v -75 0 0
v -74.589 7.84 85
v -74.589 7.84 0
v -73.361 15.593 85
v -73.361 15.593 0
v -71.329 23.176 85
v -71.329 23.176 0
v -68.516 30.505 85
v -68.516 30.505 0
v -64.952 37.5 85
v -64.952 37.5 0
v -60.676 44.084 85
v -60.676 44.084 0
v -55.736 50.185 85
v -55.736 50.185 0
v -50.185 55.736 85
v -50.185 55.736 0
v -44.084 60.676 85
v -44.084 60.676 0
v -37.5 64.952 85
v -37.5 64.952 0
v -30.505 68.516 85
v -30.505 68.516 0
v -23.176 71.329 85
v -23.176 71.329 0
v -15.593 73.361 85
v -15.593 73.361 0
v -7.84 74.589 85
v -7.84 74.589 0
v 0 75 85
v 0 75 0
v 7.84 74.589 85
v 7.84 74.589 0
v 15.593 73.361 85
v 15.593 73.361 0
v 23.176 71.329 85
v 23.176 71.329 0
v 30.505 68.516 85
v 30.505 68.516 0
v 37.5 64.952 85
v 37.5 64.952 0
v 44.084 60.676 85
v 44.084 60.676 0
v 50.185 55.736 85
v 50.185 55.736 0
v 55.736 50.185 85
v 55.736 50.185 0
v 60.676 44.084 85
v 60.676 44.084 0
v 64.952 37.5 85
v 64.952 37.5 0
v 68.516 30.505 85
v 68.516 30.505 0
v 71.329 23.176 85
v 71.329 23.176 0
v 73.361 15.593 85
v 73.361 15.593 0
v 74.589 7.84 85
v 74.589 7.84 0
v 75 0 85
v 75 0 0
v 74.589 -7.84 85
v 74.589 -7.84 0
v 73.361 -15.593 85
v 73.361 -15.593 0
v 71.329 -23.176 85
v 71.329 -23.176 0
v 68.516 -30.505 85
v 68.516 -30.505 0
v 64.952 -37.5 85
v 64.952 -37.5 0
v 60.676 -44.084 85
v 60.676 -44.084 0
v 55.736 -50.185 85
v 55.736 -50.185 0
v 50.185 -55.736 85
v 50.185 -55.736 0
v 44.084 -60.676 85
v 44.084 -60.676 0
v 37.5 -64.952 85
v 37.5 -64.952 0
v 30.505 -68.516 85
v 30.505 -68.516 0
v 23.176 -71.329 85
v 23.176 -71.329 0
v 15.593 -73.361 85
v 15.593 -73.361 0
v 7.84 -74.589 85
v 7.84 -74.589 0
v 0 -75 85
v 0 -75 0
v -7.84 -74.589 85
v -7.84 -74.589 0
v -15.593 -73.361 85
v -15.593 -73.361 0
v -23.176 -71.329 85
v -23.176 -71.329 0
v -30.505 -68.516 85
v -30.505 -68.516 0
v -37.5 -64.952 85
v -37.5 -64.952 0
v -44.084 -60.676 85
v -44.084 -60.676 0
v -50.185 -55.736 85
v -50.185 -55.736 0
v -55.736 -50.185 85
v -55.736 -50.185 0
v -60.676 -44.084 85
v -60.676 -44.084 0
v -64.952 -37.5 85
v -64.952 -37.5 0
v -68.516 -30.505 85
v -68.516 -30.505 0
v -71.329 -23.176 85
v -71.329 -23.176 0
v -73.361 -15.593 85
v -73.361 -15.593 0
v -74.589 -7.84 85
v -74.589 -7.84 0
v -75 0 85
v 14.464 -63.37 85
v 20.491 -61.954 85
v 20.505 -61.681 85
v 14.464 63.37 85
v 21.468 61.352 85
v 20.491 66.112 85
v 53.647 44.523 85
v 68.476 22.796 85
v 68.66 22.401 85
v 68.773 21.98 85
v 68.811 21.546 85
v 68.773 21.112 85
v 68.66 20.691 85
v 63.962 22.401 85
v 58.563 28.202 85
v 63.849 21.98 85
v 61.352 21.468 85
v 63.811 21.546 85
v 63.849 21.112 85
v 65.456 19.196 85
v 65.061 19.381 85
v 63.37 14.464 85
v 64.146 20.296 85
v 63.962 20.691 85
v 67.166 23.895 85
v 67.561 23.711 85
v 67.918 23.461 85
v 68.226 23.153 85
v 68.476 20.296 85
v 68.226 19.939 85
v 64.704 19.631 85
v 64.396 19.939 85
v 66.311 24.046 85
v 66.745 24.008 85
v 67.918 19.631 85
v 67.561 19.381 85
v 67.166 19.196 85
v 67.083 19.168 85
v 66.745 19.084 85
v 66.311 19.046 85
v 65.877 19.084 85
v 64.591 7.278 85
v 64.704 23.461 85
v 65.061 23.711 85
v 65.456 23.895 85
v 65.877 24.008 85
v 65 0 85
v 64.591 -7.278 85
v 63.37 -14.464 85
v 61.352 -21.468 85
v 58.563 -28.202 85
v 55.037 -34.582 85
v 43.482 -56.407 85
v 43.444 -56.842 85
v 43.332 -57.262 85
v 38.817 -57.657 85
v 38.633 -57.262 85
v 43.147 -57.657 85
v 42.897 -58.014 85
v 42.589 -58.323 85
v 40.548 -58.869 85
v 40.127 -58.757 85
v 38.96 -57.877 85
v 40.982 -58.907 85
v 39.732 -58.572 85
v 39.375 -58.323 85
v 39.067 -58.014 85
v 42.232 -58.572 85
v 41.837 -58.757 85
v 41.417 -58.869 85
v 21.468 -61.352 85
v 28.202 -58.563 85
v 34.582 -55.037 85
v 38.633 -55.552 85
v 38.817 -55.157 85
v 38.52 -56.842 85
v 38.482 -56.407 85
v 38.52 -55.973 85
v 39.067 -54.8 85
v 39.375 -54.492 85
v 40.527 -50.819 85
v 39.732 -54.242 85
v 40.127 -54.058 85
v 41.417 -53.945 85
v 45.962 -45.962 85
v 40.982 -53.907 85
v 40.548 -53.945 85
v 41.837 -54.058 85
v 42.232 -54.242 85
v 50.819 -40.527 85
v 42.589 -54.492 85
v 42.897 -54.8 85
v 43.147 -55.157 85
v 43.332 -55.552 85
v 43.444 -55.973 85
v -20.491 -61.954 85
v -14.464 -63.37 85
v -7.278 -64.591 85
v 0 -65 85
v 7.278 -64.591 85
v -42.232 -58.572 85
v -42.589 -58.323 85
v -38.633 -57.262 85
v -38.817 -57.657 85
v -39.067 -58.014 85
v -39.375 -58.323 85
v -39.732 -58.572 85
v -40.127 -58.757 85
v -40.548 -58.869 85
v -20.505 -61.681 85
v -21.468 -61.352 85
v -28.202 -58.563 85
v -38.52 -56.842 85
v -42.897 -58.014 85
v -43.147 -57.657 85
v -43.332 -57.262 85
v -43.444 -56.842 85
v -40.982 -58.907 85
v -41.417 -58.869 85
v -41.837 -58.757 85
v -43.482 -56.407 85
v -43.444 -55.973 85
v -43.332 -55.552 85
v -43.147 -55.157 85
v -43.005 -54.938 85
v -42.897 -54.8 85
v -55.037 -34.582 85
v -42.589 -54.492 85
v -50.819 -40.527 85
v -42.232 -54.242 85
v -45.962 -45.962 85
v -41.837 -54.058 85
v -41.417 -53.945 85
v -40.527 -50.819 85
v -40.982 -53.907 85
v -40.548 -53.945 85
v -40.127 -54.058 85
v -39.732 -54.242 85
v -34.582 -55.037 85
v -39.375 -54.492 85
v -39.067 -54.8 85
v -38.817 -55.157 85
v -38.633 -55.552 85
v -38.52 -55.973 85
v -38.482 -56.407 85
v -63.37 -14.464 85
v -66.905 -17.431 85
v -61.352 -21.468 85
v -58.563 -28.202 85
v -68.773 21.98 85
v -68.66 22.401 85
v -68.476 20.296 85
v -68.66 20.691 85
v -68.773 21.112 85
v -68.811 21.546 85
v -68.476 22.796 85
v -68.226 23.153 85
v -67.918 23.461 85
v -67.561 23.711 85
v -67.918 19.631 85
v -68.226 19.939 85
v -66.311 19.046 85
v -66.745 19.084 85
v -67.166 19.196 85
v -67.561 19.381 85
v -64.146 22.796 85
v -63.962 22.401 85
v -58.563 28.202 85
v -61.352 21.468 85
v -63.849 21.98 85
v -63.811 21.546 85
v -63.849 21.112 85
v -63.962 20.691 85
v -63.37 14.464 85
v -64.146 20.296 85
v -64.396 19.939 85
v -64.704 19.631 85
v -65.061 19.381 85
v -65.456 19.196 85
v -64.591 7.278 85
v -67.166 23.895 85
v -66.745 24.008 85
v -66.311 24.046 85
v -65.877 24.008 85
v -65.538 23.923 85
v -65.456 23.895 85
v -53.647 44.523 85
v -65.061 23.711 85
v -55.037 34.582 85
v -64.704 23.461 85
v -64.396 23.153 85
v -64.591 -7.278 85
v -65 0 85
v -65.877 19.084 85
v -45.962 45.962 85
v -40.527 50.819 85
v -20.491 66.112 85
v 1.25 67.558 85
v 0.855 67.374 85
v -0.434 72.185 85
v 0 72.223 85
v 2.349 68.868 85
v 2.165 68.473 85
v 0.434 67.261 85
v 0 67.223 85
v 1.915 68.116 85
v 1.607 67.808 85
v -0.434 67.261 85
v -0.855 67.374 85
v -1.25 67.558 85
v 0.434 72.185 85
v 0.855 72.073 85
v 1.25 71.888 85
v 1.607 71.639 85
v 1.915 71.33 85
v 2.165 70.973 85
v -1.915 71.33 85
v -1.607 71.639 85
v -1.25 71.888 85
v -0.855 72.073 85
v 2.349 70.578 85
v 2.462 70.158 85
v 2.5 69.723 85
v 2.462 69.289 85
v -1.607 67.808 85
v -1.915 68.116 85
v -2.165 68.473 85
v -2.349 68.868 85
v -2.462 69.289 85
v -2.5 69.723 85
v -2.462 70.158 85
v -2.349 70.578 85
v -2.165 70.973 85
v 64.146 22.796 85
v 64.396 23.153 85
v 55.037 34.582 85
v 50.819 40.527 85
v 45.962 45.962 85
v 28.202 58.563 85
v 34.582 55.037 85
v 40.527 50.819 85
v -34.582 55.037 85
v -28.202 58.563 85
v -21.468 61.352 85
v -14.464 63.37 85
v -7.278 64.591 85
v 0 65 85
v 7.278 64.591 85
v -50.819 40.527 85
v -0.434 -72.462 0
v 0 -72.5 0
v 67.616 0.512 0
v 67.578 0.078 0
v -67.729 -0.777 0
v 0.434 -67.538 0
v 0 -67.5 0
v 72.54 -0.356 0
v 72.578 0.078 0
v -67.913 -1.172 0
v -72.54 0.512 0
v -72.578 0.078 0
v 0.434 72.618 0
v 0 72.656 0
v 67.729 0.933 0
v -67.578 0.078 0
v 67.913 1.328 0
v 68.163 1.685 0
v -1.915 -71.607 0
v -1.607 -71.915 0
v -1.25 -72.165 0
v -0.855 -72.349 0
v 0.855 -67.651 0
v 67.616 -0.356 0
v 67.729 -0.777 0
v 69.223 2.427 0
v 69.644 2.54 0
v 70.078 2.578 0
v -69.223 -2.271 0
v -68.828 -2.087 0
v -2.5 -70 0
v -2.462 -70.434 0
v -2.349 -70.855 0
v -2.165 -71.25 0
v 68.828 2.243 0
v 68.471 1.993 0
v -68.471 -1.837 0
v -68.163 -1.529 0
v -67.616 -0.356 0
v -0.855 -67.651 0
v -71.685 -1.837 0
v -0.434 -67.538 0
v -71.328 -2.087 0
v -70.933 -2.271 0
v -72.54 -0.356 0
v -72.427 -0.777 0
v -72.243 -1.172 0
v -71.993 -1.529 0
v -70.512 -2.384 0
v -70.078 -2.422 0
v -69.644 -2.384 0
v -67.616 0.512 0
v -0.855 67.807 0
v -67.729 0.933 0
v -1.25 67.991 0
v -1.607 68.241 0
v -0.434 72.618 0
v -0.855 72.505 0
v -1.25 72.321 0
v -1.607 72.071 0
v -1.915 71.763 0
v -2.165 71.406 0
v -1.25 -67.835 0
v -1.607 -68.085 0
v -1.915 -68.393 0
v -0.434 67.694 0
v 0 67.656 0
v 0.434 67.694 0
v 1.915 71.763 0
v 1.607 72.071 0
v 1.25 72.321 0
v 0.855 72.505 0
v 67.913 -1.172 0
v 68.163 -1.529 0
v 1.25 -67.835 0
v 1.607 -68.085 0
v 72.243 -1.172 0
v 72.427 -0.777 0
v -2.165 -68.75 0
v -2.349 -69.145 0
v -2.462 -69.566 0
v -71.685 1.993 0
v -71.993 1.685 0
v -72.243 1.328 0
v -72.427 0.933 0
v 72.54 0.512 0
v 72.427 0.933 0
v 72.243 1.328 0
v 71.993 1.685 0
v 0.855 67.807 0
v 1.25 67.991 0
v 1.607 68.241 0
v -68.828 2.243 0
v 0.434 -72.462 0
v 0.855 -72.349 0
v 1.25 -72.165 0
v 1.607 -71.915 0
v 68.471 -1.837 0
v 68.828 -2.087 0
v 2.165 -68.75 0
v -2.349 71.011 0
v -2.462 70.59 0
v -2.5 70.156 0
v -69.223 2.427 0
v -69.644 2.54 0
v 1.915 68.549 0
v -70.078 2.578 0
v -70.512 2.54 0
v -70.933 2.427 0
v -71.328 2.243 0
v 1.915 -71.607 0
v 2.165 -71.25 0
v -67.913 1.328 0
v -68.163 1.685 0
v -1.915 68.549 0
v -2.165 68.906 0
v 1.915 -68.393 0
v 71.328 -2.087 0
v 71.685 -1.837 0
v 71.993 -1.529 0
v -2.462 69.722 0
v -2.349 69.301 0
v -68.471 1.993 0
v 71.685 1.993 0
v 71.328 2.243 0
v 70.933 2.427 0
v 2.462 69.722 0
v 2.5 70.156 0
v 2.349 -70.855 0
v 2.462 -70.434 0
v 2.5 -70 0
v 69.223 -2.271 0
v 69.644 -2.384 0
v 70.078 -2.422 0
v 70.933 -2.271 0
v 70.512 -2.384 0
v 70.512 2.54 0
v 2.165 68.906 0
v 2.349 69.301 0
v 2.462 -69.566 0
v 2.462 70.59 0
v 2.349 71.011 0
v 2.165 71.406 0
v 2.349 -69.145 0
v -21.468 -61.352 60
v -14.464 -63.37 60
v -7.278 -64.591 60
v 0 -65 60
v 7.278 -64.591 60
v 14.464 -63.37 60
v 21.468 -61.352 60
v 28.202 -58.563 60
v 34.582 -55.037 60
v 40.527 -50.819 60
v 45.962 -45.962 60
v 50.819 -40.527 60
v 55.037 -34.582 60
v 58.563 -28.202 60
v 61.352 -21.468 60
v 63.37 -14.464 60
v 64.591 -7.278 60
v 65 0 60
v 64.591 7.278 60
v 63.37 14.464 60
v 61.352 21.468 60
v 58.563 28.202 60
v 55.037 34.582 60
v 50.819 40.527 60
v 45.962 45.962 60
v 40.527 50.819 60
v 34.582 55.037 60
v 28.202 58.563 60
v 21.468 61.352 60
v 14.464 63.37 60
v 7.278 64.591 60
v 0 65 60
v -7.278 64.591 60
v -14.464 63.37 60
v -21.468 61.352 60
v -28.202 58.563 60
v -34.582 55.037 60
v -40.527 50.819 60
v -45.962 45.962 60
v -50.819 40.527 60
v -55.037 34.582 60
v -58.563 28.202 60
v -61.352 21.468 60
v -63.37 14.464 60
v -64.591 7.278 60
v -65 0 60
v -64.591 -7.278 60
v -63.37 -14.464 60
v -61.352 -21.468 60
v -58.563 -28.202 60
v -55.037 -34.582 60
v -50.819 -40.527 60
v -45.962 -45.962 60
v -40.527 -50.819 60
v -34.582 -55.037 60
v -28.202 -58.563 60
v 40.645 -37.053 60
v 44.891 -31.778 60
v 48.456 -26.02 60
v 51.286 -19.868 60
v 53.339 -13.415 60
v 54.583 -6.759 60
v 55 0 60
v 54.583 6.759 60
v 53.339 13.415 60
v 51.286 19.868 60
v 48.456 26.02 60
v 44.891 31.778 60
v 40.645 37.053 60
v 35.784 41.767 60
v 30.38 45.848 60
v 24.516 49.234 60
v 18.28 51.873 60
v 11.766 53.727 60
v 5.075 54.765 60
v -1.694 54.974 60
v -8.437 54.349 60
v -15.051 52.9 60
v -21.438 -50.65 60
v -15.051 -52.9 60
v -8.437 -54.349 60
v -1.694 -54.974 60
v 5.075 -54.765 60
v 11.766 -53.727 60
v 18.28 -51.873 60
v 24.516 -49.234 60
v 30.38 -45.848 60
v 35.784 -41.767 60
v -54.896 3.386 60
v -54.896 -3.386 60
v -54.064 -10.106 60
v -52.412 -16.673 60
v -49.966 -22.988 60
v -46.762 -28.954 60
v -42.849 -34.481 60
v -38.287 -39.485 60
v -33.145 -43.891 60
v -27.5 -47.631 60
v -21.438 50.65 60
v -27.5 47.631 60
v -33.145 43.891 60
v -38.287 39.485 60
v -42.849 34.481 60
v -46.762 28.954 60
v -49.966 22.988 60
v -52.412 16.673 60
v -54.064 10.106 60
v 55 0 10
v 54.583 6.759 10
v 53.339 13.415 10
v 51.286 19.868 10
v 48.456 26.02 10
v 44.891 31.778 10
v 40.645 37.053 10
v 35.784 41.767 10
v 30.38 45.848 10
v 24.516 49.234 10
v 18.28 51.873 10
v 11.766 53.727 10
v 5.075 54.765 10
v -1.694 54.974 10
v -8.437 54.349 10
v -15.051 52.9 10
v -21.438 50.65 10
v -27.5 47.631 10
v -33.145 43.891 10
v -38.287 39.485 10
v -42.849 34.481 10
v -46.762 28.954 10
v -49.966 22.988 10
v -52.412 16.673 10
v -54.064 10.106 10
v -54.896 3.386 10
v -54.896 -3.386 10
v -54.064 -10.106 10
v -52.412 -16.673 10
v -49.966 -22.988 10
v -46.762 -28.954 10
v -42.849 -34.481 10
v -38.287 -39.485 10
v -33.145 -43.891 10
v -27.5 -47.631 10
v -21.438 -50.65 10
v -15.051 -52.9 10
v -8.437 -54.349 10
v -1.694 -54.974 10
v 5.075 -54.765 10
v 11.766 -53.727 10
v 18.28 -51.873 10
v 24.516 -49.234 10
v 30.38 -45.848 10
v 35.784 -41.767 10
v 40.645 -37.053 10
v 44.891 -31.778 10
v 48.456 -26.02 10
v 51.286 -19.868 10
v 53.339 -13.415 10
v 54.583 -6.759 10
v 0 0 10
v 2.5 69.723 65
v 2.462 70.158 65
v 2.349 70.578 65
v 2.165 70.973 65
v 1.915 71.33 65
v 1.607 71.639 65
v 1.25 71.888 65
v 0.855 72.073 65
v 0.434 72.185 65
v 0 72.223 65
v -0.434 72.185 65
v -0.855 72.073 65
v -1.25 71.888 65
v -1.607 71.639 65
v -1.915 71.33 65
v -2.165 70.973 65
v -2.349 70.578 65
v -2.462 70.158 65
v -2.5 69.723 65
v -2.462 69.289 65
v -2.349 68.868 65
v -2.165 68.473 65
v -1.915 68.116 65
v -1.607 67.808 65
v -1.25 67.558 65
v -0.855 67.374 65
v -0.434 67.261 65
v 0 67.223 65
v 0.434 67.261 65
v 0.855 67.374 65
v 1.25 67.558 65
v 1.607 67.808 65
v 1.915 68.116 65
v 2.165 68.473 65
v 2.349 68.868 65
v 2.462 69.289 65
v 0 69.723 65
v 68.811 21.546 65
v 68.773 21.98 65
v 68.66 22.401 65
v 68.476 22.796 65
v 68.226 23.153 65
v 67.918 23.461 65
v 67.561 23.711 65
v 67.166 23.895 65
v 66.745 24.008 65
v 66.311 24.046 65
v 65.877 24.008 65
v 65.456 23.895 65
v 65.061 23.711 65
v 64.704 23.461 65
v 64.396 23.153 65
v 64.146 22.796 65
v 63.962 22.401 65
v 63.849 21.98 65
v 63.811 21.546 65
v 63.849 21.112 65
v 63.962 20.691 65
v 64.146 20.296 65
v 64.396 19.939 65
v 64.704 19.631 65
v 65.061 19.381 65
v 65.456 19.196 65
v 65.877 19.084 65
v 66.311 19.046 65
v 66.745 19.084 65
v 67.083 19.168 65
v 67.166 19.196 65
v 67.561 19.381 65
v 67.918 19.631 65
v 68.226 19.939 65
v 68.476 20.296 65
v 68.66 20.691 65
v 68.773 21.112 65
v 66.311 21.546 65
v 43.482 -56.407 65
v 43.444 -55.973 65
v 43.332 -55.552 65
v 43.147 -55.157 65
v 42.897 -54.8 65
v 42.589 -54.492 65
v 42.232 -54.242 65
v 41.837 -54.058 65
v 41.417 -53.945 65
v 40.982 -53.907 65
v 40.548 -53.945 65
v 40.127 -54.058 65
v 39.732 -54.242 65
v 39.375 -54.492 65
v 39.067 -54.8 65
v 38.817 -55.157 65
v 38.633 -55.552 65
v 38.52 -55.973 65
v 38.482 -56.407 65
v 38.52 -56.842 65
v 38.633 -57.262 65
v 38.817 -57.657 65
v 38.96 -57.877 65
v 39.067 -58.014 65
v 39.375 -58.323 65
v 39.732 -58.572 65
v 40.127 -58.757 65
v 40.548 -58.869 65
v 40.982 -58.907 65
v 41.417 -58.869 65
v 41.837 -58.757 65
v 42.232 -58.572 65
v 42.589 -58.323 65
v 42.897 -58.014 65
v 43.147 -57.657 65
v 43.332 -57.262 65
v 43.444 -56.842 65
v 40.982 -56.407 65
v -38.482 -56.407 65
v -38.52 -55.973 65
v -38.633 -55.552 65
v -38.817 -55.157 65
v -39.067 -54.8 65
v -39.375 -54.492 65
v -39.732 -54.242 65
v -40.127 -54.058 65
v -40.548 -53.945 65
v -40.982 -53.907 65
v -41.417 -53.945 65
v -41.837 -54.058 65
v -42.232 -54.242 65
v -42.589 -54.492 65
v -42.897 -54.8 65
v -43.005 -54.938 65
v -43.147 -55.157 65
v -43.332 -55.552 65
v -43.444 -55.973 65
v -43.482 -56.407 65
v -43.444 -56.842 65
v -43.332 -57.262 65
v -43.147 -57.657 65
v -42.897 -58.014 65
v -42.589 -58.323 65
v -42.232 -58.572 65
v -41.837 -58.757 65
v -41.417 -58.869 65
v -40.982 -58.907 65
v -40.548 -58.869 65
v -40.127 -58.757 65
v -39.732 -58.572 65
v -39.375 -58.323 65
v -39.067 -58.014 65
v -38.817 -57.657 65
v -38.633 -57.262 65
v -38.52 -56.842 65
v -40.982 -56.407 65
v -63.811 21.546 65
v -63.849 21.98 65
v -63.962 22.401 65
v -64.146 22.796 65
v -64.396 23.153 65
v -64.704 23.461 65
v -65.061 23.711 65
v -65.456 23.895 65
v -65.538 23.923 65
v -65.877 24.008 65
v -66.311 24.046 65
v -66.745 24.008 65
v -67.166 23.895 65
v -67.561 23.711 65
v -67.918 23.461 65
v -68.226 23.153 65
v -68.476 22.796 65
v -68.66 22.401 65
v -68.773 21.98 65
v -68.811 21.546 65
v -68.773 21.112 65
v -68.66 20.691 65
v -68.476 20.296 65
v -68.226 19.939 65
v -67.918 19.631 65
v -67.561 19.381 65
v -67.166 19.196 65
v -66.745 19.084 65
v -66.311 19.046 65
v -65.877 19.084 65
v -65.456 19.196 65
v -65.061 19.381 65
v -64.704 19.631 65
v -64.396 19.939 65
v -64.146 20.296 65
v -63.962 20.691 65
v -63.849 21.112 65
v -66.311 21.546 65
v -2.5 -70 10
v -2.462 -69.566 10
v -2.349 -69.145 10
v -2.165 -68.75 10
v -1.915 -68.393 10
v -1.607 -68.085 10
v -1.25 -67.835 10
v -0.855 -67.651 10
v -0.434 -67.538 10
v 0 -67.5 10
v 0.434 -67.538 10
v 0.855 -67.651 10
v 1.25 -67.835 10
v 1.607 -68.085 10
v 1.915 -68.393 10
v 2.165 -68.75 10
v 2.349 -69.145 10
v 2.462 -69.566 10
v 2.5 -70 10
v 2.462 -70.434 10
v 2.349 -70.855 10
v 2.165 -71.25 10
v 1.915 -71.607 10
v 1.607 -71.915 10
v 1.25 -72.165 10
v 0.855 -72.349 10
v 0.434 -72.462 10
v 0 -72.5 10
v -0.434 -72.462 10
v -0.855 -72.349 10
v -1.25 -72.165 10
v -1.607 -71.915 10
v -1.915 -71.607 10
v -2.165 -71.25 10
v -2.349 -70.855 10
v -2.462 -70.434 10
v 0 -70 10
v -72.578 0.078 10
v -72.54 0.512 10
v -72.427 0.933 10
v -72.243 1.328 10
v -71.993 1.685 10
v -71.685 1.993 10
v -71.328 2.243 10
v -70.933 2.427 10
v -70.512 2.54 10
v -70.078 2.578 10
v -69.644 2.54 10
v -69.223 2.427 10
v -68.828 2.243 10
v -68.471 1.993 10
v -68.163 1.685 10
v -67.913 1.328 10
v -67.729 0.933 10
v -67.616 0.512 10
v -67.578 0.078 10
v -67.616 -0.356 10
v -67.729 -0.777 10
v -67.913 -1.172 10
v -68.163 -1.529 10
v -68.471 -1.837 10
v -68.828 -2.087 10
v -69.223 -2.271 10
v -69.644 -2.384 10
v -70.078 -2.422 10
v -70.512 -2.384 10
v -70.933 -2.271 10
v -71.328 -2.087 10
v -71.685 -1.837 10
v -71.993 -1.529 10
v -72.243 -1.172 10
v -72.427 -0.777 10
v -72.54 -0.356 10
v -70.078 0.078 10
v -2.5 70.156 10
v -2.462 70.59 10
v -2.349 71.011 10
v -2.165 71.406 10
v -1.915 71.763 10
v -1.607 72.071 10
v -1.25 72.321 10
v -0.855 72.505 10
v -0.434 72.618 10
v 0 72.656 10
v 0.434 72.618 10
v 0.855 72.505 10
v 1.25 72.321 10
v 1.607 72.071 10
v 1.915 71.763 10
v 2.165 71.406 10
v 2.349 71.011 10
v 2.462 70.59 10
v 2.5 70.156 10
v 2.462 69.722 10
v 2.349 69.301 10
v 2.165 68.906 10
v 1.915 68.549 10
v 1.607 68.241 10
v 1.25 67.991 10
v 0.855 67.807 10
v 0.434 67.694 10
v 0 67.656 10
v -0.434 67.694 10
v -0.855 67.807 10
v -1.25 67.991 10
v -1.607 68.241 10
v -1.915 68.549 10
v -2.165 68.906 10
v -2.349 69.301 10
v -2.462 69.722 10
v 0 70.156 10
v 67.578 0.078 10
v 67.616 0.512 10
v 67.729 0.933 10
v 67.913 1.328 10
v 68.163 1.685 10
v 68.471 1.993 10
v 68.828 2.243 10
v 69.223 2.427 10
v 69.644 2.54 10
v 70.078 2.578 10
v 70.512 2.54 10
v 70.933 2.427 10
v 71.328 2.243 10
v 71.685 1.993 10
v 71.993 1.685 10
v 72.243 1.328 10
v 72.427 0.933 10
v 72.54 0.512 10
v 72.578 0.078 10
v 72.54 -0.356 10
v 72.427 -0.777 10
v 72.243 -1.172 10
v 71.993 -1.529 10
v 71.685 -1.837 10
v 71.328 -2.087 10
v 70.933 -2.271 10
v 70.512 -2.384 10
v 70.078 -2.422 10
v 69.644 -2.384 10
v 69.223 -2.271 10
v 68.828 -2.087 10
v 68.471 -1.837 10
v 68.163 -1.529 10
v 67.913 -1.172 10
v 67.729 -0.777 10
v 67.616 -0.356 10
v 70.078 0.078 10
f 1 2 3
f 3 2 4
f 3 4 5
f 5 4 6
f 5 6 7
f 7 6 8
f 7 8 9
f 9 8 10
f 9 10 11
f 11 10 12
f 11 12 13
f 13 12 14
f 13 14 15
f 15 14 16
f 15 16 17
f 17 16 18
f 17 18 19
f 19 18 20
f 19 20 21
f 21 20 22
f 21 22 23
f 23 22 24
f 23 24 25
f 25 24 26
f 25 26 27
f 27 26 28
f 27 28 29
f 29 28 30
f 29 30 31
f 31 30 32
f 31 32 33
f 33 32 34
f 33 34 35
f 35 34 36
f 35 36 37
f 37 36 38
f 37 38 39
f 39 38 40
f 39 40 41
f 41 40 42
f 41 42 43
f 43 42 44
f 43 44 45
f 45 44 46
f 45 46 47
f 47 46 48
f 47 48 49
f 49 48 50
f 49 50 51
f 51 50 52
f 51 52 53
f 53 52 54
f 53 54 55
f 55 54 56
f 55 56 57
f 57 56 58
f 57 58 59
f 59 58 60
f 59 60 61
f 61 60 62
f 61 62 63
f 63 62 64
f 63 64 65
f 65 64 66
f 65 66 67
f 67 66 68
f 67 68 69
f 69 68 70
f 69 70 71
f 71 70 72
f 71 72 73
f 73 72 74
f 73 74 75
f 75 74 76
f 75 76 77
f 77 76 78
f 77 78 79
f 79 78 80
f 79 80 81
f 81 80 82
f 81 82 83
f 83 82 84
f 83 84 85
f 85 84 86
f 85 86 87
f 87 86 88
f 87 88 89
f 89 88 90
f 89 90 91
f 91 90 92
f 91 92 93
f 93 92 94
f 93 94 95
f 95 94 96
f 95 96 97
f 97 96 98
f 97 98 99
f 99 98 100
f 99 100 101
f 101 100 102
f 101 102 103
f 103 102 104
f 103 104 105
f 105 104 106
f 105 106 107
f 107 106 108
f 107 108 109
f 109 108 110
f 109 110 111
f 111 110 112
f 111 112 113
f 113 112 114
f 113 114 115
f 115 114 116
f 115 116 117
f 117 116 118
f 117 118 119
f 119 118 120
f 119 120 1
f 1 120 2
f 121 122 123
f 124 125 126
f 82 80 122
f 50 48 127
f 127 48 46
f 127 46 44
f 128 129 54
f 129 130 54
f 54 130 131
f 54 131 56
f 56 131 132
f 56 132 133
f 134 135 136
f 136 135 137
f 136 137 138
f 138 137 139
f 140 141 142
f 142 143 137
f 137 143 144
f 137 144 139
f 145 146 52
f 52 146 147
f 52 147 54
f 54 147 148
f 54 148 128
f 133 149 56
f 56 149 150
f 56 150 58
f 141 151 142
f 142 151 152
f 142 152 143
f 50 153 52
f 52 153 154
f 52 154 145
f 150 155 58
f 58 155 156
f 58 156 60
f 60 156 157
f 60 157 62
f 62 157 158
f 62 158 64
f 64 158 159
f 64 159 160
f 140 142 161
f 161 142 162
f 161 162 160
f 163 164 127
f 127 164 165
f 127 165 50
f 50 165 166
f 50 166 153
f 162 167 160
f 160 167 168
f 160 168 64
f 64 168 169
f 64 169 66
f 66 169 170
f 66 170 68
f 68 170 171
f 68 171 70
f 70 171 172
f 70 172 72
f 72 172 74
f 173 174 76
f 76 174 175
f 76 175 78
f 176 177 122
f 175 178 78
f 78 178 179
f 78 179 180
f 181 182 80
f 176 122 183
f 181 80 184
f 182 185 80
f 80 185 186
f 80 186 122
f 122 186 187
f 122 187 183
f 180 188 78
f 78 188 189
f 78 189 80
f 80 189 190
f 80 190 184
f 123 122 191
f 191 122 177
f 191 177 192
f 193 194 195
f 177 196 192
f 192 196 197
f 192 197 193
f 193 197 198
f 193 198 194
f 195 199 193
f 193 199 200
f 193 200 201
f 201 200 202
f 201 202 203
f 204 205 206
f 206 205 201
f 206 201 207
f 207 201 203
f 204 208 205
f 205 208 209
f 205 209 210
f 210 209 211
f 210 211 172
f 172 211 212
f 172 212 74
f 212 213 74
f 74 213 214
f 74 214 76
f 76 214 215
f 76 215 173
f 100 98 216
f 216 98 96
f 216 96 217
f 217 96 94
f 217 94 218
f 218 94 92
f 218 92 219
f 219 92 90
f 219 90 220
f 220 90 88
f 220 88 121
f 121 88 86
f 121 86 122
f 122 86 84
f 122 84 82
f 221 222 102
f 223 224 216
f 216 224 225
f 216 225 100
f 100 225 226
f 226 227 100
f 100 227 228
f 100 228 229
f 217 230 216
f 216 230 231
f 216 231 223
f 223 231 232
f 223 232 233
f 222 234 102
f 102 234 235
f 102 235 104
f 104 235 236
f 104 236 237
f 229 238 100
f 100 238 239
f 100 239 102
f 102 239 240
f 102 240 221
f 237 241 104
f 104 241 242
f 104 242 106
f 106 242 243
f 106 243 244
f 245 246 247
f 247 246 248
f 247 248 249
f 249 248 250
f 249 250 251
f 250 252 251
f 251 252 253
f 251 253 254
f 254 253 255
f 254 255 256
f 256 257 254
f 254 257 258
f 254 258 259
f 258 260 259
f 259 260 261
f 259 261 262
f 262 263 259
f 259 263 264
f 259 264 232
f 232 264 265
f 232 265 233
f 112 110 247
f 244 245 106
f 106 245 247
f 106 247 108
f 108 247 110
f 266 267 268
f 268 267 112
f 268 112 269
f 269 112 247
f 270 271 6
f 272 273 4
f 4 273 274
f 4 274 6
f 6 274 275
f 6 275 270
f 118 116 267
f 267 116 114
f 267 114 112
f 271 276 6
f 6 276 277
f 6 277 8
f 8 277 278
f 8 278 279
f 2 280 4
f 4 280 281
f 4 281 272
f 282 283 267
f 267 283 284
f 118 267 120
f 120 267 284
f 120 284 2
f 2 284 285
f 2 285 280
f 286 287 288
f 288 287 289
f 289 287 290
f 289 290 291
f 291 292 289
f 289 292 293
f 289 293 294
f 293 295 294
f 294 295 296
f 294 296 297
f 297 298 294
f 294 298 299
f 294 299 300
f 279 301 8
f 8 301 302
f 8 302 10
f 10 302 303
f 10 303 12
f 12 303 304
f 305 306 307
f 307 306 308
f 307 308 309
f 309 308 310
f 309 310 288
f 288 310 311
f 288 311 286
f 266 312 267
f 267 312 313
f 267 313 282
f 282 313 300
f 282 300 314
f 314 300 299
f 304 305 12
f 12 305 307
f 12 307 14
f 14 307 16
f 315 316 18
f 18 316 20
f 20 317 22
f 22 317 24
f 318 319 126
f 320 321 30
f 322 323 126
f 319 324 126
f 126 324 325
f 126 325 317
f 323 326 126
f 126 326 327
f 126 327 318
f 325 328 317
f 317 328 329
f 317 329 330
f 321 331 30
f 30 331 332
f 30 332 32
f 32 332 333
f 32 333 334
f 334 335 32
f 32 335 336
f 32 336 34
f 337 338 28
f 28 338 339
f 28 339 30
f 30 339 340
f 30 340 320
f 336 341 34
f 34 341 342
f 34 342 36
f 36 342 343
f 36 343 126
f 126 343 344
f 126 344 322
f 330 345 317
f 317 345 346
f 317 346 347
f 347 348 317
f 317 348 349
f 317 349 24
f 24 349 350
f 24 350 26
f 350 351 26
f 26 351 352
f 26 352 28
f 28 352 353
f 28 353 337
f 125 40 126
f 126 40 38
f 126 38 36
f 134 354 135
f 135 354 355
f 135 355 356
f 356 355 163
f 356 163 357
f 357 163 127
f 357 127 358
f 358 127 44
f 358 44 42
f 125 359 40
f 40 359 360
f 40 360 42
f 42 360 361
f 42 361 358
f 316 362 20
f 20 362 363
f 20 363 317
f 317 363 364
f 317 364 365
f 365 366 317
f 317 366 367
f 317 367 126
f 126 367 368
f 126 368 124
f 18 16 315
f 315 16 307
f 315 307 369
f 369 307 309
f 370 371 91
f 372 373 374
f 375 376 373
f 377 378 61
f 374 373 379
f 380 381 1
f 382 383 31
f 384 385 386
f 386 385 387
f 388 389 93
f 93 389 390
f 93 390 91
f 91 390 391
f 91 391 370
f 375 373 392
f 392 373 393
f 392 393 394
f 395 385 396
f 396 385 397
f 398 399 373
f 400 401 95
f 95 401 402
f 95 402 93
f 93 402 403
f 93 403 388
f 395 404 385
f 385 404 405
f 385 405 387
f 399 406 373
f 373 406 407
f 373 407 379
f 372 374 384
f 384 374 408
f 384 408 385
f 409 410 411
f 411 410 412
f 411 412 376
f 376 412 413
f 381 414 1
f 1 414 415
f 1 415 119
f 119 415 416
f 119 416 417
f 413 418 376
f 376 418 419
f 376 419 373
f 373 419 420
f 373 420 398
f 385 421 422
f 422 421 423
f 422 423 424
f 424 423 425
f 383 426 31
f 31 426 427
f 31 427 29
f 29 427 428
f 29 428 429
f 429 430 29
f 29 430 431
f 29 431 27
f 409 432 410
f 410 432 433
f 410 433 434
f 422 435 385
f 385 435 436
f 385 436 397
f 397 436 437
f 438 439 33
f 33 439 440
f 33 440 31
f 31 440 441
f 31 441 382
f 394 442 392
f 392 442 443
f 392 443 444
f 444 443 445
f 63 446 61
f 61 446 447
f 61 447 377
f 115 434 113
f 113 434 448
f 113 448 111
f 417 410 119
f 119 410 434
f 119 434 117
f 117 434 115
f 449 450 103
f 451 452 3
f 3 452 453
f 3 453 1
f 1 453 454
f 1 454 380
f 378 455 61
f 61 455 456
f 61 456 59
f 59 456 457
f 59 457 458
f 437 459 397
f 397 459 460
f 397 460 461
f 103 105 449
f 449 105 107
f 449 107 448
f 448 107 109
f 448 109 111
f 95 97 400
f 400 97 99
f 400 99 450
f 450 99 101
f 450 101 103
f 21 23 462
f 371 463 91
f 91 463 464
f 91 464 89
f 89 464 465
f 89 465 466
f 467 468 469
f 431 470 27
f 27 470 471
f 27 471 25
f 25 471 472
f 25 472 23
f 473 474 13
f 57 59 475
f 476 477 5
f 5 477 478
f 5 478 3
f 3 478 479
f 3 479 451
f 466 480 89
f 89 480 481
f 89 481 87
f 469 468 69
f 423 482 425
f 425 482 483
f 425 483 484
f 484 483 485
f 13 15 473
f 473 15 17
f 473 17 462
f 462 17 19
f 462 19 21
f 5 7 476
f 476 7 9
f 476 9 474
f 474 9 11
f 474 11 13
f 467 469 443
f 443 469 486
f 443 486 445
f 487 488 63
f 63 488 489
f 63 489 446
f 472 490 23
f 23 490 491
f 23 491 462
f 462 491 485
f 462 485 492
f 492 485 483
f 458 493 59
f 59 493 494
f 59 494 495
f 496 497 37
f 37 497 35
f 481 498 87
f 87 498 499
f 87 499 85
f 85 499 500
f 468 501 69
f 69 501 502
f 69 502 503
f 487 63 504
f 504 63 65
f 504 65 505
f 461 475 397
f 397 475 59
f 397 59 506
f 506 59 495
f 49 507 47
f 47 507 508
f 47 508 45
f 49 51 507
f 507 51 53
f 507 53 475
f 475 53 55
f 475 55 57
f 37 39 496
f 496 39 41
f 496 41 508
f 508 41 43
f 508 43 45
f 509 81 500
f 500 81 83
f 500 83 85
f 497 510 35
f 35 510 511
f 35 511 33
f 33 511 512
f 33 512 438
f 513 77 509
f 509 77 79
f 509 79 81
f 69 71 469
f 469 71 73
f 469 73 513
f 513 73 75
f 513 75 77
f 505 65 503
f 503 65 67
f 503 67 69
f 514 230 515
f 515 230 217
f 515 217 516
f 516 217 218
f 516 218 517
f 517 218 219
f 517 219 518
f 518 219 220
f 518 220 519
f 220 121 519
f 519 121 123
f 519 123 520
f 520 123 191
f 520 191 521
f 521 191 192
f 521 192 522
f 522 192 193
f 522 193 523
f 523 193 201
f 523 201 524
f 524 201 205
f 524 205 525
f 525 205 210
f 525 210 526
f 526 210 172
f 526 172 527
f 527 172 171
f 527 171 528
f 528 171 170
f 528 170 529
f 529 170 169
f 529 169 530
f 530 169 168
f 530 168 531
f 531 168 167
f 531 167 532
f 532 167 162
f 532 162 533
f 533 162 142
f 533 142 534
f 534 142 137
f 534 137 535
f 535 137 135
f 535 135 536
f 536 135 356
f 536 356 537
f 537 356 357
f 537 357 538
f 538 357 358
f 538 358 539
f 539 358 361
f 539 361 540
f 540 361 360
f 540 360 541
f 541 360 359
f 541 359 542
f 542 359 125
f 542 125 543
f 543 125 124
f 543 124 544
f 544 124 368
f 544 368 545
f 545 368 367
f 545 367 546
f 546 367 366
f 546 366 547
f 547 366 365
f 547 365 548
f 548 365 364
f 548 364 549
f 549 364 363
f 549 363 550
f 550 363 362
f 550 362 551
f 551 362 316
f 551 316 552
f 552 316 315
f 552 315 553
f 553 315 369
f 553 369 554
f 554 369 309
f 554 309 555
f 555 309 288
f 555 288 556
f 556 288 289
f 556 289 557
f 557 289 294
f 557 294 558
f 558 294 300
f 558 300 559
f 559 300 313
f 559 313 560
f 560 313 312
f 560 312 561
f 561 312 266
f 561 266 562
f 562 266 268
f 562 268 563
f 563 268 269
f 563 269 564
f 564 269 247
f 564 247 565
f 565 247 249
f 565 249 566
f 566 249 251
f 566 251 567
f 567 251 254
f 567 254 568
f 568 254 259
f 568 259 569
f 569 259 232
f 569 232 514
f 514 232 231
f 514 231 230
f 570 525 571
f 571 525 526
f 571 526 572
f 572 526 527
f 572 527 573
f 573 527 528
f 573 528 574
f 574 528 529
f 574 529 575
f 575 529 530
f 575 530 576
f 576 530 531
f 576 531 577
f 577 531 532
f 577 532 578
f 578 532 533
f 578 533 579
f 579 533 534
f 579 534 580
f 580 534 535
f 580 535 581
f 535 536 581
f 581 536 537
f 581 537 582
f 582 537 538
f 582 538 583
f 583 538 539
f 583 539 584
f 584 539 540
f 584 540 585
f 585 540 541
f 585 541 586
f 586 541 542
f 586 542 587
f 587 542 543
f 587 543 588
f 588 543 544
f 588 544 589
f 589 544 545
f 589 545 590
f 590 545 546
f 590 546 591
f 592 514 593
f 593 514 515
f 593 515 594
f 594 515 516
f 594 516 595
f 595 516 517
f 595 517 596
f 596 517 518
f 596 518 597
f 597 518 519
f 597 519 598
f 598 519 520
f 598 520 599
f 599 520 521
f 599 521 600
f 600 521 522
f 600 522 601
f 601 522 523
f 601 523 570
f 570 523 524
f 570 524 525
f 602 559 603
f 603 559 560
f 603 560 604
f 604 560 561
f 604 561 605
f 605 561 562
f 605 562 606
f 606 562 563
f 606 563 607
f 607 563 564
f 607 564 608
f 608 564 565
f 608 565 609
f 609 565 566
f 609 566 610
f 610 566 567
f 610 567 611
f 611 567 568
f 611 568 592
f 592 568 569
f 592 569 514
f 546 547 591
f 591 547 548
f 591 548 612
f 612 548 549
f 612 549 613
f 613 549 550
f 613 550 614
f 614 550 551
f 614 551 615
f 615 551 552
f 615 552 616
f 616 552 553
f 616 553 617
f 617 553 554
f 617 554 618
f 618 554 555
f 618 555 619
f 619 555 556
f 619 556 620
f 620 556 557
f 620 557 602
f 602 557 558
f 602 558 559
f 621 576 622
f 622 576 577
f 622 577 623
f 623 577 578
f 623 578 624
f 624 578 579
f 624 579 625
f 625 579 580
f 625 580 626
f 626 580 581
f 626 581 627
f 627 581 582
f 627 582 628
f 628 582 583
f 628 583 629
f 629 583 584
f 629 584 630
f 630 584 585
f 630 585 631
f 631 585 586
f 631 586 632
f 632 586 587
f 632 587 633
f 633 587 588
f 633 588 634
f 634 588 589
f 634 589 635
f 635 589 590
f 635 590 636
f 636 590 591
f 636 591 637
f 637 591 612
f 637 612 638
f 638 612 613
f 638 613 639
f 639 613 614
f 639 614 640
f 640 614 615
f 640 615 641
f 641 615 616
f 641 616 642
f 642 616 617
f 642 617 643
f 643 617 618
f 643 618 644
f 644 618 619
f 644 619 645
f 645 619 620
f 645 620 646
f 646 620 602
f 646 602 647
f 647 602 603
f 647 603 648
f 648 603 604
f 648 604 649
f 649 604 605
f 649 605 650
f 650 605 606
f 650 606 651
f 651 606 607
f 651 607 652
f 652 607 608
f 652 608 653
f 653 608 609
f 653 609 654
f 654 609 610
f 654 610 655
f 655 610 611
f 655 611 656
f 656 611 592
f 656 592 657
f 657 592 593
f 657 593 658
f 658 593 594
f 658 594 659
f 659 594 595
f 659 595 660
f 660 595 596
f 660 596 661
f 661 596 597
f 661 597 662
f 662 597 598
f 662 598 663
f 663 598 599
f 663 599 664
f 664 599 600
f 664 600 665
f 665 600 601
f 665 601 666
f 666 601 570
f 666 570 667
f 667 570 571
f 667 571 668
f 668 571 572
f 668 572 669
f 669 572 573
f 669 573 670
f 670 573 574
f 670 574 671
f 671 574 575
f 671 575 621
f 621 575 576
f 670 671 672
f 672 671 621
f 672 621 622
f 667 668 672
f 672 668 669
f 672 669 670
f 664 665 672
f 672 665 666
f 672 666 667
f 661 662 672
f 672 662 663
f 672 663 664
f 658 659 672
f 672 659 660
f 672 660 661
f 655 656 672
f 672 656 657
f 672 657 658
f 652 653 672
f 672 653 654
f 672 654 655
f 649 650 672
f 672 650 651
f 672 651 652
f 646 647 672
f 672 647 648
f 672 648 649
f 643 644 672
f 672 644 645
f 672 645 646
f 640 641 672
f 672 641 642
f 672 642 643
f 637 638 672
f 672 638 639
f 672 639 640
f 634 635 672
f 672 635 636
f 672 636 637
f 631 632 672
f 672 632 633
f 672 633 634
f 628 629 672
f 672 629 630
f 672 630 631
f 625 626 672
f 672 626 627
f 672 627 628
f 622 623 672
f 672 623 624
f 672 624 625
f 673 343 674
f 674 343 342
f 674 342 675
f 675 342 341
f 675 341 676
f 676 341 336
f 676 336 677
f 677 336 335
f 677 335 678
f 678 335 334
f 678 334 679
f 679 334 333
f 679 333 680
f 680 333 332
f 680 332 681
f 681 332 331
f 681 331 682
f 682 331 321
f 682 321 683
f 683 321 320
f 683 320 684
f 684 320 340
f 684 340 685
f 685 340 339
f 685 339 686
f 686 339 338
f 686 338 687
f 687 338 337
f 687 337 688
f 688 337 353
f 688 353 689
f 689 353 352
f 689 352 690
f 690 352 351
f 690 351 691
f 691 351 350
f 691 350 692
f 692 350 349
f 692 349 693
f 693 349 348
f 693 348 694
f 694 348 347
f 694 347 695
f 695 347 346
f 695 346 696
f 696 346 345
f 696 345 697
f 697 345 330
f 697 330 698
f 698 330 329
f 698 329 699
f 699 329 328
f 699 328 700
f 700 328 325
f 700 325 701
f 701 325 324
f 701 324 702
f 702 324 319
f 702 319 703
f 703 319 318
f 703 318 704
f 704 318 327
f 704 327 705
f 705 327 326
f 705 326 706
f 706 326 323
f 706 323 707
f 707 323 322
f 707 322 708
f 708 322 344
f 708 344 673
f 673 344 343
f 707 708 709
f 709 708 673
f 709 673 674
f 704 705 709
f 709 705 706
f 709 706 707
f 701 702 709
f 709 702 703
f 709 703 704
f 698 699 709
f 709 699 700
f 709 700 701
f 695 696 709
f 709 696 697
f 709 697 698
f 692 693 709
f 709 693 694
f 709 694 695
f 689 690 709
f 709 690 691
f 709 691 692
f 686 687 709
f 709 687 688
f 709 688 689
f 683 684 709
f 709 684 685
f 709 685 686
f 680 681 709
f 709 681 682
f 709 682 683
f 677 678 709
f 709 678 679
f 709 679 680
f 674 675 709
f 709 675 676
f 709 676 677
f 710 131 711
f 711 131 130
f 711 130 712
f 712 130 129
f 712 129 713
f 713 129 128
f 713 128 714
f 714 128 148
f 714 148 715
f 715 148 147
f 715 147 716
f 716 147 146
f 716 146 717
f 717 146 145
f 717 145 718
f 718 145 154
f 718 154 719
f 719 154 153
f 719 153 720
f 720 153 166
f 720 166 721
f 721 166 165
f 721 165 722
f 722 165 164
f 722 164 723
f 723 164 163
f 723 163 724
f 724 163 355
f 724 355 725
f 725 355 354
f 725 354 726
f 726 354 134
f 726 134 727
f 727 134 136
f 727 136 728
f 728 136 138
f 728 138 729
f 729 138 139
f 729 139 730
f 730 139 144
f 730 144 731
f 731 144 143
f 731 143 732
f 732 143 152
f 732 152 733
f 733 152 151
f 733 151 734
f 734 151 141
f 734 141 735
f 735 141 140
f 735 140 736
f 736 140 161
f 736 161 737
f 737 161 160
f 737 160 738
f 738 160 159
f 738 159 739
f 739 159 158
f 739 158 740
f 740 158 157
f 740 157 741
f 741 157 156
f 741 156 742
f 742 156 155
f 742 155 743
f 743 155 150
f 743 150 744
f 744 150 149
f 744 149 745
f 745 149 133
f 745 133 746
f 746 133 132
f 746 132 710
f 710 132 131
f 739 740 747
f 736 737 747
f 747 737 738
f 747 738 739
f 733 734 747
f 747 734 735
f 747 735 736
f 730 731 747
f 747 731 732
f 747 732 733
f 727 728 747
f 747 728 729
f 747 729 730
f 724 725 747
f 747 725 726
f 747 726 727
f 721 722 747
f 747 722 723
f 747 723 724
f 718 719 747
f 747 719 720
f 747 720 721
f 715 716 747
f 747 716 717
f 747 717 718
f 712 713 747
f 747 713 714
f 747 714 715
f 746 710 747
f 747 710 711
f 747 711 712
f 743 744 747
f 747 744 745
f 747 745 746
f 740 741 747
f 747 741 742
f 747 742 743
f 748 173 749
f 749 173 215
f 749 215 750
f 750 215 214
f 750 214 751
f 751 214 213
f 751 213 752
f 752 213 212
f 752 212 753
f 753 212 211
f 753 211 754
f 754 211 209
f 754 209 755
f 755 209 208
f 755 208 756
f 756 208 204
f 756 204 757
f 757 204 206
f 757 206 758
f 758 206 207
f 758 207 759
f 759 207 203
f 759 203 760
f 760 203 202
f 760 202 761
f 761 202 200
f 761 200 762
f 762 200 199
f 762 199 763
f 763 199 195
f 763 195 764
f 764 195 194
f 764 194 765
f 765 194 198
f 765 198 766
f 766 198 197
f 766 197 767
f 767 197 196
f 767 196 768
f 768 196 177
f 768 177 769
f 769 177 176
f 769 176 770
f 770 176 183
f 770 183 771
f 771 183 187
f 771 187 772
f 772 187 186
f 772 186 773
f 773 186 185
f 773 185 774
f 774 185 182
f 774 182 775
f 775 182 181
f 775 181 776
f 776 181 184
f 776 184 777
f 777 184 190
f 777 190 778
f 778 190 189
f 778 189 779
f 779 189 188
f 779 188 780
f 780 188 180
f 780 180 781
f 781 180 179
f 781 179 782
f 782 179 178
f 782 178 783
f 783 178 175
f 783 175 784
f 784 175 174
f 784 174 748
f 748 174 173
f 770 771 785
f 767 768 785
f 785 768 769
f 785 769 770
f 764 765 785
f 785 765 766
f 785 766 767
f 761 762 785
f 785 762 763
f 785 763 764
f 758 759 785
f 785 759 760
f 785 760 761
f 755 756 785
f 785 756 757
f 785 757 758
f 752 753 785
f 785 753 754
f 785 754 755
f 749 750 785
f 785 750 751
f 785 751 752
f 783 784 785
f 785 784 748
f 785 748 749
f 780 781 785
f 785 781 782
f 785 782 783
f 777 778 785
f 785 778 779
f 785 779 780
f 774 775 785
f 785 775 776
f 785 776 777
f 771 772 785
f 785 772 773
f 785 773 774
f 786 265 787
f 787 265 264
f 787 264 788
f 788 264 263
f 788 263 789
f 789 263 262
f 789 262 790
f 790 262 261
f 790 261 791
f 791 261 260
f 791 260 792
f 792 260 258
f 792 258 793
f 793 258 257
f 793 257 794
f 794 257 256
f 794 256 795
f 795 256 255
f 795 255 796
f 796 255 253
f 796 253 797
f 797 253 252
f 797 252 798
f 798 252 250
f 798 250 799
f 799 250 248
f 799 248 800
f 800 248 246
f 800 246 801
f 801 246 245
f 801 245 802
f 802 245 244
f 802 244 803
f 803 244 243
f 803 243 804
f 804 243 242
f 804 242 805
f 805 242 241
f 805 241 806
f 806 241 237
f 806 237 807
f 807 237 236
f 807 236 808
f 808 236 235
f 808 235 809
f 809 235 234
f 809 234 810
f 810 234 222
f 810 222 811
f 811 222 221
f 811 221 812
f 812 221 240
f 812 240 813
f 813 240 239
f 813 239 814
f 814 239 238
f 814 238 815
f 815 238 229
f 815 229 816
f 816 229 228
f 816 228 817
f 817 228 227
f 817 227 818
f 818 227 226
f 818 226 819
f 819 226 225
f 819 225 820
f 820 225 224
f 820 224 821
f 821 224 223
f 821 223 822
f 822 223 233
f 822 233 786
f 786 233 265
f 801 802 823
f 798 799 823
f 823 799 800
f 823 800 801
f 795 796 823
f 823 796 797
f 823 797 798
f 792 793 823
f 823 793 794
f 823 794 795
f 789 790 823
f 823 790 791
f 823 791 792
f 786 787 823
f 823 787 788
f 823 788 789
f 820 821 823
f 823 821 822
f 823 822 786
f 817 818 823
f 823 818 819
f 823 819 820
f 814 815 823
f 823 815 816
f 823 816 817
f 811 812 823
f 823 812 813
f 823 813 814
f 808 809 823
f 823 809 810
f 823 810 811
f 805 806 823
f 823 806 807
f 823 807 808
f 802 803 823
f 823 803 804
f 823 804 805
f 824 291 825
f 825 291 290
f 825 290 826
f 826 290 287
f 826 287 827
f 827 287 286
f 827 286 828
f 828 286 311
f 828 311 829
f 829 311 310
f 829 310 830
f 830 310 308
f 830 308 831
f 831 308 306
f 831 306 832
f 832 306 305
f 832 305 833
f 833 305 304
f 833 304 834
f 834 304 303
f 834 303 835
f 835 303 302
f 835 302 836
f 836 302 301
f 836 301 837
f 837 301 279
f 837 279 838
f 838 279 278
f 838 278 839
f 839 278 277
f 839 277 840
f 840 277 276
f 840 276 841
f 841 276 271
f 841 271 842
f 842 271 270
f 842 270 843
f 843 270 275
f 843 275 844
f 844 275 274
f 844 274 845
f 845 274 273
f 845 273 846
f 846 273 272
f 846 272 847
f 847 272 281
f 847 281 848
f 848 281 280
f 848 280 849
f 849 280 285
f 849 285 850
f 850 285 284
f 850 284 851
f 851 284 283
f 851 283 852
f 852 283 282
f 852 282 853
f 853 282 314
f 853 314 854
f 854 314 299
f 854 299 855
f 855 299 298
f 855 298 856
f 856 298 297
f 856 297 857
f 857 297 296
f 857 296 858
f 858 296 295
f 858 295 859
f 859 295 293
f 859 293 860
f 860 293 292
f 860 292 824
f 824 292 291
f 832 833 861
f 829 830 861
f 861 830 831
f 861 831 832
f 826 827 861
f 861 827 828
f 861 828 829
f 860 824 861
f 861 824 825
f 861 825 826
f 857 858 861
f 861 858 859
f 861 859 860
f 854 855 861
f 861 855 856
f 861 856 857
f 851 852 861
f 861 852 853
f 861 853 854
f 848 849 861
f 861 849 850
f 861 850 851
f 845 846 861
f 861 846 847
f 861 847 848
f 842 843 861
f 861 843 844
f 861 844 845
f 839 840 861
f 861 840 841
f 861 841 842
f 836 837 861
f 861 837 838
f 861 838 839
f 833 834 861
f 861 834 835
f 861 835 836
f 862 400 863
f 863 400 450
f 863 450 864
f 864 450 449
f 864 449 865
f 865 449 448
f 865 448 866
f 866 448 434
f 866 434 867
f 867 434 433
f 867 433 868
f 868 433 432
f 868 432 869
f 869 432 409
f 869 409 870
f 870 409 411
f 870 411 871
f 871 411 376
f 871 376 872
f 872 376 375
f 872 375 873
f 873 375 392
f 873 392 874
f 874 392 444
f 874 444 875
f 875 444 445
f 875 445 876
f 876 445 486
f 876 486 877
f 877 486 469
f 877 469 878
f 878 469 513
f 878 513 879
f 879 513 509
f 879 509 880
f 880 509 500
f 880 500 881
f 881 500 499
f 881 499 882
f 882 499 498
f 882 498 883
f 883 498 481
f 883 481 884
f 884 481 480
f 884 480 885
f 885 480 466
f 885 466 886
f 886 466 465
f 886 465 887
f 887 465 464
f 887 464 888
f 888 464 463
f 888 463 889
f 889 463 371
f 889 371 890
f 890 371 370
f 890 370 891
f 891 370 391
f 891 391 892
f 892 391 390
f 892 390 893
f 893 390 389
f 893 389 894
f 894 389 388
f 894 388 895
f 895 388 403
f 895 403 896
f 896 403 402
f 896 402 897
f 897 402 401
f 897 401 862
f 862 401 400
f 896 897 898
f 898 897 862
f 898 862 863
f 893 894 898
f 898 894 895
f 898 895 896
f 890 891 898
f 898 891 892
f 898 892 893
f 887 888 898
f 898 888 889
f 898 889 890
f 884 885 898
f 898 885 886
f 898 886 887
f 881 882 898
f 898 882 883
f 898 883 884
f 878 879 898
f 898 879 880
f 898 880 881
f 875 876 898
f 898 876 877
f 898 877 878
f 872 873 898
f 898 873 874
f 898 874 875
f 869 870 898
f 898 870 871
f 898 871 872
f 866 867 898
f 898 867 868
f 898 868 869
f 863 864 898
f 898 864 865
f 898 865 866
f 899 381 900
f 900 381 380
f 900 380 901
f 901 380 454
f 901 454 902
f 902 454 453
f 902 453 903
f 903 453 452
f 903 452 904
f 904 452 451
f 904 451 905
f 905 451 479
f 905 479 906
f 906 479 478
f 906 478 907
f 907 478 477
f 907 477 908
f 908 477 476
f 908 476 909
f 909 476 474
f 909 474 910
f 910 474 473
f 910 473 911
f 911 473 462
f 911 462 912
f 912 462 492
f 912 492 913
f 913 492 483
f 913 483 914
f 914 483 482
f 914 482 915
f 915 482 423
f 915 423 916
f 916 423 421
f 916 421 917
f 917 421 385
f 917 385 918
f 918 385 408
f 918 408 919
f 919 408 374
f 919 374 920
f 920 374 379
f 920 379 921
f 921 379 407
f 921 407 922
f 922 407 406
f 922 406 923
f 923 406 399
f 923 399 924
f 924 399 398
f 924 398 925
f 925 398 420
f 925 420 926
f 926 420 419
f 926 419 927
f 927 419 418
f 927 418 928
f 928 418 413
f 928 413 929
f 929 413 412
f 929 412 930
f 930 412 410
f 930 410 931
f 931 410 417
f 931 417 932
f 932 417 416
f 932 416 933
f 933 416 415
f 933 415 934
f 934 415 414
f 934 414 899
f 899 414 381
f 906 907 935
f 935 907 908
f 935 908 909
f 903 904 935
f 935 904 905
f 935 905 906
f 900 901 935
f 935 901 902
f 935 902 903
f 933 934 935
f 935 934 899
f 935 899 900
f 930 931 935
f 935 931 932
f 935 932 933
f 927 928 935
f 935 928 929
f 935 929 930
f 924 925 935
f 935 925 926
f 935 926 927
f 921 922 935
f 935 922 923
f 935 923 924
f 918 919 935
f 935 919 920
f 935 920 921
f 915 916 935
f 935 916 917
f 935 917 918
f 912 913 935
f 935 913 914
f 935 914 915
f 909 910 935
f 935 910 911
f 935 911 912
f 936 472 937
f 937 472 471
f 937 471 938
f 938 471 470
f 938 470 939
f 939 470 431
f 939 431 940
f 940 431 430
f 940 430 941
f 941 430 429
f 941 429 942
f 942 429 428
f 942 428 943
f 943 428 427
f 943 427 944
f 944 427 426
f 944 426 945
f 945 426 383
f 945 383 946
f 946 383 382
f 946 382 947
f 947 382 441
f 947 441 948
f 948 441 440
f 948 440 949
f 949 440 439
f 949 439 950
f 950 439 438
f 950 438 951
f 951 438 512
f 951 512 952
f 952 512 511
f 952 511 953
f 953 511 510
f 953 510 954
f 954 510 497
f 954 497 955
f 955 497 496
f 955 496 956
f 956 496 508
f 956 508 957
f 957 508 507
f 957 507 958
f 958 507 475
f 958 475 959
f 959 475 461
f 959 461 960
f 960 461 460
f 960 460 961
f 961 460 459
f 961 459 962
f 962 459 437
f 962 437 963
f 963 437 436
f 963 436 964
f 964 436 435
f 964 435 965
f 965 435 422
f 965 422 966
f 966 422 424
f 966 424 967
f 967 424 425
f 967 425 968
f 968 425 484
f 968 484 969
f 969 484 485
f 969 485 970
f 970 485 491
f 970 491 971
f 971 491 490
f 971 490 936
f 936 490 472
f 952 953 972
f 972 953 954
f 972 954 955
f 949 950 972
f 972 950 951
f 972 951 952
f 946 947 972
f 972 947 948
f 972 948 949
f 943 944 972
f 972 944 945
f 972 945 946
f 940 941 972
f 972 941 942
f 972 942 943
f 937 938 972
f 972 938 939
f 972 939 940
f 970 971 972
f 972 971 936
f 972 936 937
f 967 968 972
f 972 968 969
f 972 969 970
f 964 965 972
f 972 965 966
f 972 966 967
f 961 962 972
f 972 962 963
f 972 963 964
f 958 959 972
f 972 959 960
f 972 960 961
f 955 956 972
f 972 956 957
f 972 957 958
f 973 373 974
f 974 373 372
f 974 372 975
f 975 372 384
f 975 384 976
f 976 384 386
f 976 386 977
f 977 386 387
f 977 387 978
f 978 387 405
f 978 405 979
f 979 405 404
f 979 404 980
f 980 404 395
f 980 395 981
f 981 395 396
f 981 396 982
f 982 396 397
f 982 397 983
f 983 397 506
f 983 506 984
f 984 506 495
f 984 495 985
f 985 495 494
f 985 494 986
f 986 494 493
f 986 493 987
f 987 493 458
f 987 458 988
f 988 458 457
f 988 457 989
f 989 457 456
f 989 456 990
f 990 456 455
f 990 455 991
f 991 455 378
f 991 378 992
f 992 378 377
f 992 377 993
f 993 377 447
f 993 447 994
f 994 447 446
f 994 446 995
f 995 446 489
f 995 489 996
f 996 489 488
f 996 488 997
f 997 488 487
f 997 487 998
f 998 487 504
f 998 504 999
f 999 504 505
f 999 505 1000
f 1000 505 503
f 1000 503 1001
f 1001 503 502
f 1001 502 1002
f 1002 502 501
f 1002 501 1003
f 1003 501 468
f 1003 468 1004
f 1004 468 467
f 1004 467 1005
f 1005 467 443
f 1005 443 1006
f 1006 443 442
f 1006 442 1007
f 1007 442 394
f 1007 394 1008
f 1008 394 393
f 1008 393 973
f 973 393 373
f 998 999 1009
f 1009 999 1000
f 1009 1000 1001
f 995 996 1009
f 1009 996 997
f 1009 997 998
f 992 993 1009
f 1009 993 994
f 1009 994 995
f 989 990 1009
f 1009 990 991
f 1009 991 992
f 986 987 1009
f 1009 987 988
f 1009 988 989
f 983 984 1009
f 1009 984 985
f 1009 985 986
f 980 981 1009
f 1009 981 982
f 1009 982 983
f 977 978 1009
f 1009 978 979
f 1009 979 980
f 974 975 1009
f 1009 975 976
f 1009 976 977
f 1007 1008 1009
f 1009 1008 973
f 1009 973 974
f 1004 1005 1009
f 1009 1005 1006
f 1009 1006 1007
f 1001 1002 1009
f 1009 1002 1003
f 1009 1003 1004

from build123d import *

# Parameters (mm, degrees)
SKETCH2_R           = 75
BOSS_EXTRUDE1_DEPTH = 85
SKETCH4_R           = 65
CUT_EXTRUDE2_DEPTH  = 25
SKETCH5_R           = 55
CUT_EXTRUDE3_DEPTH  = 50
SKETCH7_R           = 2.5
CUT_EXTRUDE4_DEPTH  = 20
CIRPATTERN1_COUNT   = 5
SKETCH8_R           = 2.5
CUT_EXTRUDE5_DEPTH  = 10
CIRPATTERN2_COUNT   = 4


with BuildPart() as part:
    # Sketch2 → Boss-Extrude1 (new body)
    with BuildSketch(Plane(origin=(0, 0, 0), x_dir=(0, 1, 0), z_dir=(0, 0, 1))):
        with Locations(Location((0, 0, 0), (0, 0, 270))):
            Circle(SKETCH2_R)
    extrude(amount=BOSS_EXTRUDE1_DEPTH)

    # Sketch4 → Cut-Extrude2 (cut)
    with BuildSketch(Plane.XY.offset(85)):
        Circle(SKETCH4_R)
    extrude(amount=-CUT_EXTRUDE2_DEPTH, mode=Mode.SUBTRACT)

    # Sketch5 → Cut-Extrude3 (cut)
    with BuildSketch(Plane.XY.offset(60)):
        Circle(SKETCH5_R)
    extrude(amount=-CUT_EXTRUDE3_DEPTH, mode=Mode.SUBTRACT)

    # Sketch7 → Cut-Extrude4 (cut)
    with BuildSketch(Plane.XY.offset(85)):
        with Locations((0, 69.72339814)):
            Circle(SKETCH7_R)
    cut_extrude4 = extrude(amount=-CUT_EXTRUDE4_DEPTH, mode=Mode.SUBTRACT)

    # CirPattern1: Cut-Extrude4 ×5 about axis
    cirpattern1_axis = Axis((0, 0, 0), (0, 0, 1))
    for i in range(1, CIRPATTERN1_COUNT):
        add(cut_extrude4.rotate(cirpattern1_axis, i * 360 / CIRPATTERN1_COUNT), mode=Mode.SUBTRACT)

    # Sketch8 → Cut-Extrude5 (cut)
    with BuildSketch(Plane(origin=(0, 0, 0), x_dir=(1, 0, 0), z_dir=(0, 0, -1))):
        with Locations(Location((0, 70, 0), (0, 0, 180))):
            Circle(SKETCH8_R)
    cut_extrude5 = extrude(amount=-CUT_EXTRUDE5_DEPTH, mode=Mode.SUBTRACT)

    # CirPattern2: Cut-Extrude5 ×4 about axis
    cirpattern2_axis = Axis((0, 0.077864294, 0), (0, 0, 1))
    for i in range(1, CIRPATTERN2_COUNT):
        add(cut_extrude5.rotate(cirpattern2_axis, i * 360 / CIRPATTERN2_COUNT), mode=Mode.SUBTRACT)


solid = part.part
